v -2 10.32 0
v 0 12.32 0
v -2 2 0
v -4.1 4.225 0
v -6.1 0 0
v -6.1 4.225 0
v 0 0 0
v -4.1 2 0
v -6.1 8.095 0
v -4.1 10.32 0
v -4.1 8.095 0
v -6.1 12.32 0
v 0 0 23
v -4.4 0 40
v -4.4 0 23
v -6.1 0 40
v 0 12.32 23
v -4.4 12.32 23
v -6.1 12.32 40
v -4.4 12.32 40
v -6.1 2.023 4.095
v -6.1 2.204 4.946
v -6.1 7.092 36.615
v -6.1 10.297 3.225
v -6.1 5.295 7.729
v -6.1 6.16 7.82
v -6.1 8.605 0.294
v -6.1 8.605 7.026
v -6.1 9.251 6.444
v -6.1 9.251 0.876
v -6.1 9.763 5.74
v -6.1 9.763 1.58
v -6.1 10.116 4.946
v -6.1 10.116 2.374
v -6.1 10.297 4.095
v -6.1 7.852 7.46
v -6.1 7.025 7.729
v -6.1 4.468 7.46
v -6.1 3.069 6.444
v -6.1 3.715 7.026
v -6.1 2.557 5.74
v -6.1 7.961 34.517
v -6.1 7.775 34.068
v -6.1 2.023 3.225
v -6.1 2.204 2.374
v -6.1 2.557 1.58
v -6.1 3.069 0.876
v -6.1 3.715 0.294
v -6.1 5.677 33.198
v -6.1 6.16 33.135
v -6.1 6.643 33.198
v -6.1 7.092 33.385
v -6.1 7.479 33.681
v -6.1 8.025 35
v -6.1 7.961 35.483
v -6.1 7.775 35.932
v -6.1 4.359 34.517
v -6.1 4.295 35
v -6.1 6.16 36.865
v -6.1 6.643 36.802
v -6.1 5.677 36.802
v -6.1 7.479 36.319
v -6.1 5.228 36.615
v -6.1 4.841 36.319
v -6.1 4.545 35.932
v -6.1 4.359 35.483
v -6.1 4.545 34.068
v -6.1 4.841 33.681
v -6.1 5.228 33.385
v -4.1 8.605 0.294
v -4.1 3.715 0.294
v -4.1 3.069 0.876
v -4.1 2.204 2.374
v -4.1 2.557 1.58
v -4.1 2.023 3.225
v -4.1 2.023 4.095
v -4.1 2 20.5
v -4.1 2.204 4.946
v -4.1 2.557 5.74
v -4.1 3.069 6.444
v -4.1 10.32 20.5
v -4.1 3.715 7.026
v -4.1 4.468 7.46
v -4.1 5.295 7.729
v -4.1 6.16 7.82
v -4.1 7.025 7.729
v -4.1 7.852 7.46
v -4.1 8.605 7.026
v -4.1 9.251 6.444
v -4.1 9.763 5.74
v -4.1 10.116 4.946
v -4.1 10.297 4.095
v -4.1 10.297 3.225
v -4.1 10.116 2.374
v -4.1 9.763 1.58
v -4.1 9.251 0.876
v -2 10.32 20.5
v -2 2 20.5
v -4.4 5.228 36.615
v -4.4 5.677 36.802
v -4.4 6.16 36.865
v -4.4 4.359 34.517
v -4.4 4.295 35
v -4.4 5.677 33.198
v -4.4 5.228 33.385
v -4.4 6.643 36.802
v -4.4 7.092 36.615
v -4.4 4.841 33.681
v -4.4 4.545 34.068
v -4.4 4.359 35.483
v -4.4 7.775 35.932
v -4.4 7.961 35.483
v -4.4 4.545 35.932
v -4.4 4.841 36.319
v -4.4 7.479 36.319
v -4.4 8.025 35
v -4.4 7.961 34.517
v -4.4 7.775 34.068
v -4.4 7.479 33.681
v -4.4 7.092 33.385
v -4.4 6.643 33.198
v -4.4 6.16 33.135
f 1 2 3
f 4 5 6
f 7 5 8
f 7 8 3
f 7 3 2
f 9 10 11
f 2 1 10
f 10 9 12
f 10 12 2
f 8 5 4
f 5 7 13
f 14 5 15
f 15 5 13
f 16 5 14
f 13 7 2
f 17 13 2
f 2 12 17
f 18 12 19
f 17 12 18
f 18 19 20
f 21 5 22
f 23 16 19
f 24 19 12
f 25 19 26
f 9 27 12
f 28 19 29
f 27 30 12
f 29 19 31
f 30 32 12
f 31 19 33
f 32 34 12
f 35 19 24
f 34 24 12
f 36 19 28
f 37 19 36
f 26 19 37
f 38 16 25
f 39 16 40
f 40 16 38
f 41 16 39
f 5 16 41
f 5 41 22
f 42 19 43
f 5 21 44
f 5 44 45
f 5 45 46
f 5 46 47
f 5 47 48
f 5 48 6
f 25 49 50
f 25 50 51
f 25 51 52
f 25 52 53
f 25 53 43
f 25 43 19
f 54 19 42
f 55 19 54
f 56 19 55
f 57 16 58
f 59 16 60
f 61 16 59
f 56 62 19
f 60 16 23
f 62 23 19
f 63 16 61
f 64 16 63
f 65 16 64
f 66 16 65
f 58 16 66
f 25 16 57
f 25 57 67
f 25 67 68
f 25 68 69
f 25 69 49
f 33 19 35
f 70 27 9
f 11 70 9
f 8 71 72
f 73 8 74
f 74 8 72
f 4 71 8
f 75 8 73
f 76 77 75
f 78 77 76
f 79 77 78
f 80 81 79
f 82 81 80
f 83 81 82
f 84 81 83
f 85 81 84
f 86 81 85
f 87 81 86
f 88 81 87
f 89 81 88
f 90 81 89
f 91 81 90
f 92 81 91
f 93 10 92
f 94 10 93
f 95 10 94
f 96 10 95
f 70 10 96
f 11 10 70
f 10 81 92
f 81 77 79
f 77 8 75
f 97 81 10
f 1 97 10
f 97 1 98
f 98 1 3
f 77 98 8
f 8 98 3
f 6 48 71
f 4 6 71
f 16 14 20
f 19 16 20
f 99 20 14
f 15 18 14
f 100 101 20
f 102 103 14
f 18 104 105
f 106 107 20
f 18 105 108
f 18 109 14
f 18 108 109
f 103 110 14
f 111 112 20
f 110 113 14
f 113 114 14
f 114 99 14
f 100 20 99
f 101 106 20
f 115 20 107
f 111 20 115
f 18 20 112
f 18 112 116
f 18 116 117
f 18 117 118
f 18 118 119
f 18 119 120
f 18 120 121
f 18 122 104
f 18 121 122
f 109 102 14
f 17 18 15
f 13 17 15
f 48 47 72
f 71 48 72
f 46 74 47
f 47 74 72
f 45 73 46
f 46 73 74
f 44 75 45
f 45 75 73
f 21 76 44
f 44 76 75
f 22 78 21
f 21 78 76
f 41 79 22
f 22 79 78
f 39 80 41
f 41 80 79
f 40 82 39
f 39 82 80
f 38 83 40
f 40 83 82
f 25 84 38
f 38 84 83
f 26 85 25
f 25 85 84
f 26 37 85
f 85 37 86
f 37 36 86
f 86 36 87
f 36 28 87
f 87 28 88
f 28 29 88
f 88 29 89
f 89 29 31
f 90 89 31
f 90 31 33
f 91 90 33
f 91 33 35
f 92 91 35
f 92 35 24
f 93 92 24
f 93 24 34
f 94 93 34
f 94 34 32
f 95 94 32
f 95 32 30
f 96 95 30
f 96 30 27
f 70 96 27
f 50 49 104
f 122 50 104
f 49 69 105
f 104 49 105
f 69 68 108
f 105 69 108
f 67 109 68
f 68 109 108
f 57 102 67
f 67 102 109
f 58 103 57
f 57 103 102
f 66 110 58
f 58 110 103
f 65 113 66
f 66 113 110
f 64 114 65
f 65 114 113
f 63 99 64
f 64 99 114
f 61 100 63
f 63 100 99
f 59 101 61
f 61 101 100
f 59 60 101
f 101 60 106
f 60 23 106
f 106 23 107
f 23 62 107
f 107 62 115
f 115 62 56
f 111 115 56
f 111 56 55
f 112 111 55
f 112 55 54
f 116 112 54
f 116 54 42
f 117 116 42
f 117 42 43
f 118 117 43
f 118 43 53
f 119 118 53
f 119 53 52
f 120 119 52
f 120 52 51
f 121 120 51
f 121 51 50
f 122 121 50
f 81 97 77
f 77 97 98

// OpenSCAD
head_diameter = 7.32;
head_radius = head_diameter / 2;
head_height = 4.3;
arm_height = 1.6;
arm_length = 20;
offset=0.1;
wire_diameter=2.73;
wire_radius = 0.5*wire_diameter;


wall_width = 2;
give = 0.5;

component_width = head_diameter + 2*give + 2*wall_width;
component_height = arm_height + give + 2*wall_width;
component_length = 40;

rotate(-90, [0,1,0]){
difference(){
	cube([component_length, component_width, component_height]);
	translate([-offset, wall_width, wall_width]){
		cube([
			arm_length+offset+give,
			head_diameter+2*give,
			arm_height+give
		]);
	}
	translate([head_radius, 0.5*component_width, arm_height+2*give]){
		cylinder(r=head_radius+give, h=component_height, $fs=0.5);
	}
	translate([component_length-(17),-offset,-offset]){
		cube([component_length, component_width+2*offset, component_height-arm_height]);
		translate([12,0.5*component_width+offset,0]){
			cylinder(r=wire_radius+give, h=component_height+2*offset, $fs=0.5);
		}
	}
}

}
